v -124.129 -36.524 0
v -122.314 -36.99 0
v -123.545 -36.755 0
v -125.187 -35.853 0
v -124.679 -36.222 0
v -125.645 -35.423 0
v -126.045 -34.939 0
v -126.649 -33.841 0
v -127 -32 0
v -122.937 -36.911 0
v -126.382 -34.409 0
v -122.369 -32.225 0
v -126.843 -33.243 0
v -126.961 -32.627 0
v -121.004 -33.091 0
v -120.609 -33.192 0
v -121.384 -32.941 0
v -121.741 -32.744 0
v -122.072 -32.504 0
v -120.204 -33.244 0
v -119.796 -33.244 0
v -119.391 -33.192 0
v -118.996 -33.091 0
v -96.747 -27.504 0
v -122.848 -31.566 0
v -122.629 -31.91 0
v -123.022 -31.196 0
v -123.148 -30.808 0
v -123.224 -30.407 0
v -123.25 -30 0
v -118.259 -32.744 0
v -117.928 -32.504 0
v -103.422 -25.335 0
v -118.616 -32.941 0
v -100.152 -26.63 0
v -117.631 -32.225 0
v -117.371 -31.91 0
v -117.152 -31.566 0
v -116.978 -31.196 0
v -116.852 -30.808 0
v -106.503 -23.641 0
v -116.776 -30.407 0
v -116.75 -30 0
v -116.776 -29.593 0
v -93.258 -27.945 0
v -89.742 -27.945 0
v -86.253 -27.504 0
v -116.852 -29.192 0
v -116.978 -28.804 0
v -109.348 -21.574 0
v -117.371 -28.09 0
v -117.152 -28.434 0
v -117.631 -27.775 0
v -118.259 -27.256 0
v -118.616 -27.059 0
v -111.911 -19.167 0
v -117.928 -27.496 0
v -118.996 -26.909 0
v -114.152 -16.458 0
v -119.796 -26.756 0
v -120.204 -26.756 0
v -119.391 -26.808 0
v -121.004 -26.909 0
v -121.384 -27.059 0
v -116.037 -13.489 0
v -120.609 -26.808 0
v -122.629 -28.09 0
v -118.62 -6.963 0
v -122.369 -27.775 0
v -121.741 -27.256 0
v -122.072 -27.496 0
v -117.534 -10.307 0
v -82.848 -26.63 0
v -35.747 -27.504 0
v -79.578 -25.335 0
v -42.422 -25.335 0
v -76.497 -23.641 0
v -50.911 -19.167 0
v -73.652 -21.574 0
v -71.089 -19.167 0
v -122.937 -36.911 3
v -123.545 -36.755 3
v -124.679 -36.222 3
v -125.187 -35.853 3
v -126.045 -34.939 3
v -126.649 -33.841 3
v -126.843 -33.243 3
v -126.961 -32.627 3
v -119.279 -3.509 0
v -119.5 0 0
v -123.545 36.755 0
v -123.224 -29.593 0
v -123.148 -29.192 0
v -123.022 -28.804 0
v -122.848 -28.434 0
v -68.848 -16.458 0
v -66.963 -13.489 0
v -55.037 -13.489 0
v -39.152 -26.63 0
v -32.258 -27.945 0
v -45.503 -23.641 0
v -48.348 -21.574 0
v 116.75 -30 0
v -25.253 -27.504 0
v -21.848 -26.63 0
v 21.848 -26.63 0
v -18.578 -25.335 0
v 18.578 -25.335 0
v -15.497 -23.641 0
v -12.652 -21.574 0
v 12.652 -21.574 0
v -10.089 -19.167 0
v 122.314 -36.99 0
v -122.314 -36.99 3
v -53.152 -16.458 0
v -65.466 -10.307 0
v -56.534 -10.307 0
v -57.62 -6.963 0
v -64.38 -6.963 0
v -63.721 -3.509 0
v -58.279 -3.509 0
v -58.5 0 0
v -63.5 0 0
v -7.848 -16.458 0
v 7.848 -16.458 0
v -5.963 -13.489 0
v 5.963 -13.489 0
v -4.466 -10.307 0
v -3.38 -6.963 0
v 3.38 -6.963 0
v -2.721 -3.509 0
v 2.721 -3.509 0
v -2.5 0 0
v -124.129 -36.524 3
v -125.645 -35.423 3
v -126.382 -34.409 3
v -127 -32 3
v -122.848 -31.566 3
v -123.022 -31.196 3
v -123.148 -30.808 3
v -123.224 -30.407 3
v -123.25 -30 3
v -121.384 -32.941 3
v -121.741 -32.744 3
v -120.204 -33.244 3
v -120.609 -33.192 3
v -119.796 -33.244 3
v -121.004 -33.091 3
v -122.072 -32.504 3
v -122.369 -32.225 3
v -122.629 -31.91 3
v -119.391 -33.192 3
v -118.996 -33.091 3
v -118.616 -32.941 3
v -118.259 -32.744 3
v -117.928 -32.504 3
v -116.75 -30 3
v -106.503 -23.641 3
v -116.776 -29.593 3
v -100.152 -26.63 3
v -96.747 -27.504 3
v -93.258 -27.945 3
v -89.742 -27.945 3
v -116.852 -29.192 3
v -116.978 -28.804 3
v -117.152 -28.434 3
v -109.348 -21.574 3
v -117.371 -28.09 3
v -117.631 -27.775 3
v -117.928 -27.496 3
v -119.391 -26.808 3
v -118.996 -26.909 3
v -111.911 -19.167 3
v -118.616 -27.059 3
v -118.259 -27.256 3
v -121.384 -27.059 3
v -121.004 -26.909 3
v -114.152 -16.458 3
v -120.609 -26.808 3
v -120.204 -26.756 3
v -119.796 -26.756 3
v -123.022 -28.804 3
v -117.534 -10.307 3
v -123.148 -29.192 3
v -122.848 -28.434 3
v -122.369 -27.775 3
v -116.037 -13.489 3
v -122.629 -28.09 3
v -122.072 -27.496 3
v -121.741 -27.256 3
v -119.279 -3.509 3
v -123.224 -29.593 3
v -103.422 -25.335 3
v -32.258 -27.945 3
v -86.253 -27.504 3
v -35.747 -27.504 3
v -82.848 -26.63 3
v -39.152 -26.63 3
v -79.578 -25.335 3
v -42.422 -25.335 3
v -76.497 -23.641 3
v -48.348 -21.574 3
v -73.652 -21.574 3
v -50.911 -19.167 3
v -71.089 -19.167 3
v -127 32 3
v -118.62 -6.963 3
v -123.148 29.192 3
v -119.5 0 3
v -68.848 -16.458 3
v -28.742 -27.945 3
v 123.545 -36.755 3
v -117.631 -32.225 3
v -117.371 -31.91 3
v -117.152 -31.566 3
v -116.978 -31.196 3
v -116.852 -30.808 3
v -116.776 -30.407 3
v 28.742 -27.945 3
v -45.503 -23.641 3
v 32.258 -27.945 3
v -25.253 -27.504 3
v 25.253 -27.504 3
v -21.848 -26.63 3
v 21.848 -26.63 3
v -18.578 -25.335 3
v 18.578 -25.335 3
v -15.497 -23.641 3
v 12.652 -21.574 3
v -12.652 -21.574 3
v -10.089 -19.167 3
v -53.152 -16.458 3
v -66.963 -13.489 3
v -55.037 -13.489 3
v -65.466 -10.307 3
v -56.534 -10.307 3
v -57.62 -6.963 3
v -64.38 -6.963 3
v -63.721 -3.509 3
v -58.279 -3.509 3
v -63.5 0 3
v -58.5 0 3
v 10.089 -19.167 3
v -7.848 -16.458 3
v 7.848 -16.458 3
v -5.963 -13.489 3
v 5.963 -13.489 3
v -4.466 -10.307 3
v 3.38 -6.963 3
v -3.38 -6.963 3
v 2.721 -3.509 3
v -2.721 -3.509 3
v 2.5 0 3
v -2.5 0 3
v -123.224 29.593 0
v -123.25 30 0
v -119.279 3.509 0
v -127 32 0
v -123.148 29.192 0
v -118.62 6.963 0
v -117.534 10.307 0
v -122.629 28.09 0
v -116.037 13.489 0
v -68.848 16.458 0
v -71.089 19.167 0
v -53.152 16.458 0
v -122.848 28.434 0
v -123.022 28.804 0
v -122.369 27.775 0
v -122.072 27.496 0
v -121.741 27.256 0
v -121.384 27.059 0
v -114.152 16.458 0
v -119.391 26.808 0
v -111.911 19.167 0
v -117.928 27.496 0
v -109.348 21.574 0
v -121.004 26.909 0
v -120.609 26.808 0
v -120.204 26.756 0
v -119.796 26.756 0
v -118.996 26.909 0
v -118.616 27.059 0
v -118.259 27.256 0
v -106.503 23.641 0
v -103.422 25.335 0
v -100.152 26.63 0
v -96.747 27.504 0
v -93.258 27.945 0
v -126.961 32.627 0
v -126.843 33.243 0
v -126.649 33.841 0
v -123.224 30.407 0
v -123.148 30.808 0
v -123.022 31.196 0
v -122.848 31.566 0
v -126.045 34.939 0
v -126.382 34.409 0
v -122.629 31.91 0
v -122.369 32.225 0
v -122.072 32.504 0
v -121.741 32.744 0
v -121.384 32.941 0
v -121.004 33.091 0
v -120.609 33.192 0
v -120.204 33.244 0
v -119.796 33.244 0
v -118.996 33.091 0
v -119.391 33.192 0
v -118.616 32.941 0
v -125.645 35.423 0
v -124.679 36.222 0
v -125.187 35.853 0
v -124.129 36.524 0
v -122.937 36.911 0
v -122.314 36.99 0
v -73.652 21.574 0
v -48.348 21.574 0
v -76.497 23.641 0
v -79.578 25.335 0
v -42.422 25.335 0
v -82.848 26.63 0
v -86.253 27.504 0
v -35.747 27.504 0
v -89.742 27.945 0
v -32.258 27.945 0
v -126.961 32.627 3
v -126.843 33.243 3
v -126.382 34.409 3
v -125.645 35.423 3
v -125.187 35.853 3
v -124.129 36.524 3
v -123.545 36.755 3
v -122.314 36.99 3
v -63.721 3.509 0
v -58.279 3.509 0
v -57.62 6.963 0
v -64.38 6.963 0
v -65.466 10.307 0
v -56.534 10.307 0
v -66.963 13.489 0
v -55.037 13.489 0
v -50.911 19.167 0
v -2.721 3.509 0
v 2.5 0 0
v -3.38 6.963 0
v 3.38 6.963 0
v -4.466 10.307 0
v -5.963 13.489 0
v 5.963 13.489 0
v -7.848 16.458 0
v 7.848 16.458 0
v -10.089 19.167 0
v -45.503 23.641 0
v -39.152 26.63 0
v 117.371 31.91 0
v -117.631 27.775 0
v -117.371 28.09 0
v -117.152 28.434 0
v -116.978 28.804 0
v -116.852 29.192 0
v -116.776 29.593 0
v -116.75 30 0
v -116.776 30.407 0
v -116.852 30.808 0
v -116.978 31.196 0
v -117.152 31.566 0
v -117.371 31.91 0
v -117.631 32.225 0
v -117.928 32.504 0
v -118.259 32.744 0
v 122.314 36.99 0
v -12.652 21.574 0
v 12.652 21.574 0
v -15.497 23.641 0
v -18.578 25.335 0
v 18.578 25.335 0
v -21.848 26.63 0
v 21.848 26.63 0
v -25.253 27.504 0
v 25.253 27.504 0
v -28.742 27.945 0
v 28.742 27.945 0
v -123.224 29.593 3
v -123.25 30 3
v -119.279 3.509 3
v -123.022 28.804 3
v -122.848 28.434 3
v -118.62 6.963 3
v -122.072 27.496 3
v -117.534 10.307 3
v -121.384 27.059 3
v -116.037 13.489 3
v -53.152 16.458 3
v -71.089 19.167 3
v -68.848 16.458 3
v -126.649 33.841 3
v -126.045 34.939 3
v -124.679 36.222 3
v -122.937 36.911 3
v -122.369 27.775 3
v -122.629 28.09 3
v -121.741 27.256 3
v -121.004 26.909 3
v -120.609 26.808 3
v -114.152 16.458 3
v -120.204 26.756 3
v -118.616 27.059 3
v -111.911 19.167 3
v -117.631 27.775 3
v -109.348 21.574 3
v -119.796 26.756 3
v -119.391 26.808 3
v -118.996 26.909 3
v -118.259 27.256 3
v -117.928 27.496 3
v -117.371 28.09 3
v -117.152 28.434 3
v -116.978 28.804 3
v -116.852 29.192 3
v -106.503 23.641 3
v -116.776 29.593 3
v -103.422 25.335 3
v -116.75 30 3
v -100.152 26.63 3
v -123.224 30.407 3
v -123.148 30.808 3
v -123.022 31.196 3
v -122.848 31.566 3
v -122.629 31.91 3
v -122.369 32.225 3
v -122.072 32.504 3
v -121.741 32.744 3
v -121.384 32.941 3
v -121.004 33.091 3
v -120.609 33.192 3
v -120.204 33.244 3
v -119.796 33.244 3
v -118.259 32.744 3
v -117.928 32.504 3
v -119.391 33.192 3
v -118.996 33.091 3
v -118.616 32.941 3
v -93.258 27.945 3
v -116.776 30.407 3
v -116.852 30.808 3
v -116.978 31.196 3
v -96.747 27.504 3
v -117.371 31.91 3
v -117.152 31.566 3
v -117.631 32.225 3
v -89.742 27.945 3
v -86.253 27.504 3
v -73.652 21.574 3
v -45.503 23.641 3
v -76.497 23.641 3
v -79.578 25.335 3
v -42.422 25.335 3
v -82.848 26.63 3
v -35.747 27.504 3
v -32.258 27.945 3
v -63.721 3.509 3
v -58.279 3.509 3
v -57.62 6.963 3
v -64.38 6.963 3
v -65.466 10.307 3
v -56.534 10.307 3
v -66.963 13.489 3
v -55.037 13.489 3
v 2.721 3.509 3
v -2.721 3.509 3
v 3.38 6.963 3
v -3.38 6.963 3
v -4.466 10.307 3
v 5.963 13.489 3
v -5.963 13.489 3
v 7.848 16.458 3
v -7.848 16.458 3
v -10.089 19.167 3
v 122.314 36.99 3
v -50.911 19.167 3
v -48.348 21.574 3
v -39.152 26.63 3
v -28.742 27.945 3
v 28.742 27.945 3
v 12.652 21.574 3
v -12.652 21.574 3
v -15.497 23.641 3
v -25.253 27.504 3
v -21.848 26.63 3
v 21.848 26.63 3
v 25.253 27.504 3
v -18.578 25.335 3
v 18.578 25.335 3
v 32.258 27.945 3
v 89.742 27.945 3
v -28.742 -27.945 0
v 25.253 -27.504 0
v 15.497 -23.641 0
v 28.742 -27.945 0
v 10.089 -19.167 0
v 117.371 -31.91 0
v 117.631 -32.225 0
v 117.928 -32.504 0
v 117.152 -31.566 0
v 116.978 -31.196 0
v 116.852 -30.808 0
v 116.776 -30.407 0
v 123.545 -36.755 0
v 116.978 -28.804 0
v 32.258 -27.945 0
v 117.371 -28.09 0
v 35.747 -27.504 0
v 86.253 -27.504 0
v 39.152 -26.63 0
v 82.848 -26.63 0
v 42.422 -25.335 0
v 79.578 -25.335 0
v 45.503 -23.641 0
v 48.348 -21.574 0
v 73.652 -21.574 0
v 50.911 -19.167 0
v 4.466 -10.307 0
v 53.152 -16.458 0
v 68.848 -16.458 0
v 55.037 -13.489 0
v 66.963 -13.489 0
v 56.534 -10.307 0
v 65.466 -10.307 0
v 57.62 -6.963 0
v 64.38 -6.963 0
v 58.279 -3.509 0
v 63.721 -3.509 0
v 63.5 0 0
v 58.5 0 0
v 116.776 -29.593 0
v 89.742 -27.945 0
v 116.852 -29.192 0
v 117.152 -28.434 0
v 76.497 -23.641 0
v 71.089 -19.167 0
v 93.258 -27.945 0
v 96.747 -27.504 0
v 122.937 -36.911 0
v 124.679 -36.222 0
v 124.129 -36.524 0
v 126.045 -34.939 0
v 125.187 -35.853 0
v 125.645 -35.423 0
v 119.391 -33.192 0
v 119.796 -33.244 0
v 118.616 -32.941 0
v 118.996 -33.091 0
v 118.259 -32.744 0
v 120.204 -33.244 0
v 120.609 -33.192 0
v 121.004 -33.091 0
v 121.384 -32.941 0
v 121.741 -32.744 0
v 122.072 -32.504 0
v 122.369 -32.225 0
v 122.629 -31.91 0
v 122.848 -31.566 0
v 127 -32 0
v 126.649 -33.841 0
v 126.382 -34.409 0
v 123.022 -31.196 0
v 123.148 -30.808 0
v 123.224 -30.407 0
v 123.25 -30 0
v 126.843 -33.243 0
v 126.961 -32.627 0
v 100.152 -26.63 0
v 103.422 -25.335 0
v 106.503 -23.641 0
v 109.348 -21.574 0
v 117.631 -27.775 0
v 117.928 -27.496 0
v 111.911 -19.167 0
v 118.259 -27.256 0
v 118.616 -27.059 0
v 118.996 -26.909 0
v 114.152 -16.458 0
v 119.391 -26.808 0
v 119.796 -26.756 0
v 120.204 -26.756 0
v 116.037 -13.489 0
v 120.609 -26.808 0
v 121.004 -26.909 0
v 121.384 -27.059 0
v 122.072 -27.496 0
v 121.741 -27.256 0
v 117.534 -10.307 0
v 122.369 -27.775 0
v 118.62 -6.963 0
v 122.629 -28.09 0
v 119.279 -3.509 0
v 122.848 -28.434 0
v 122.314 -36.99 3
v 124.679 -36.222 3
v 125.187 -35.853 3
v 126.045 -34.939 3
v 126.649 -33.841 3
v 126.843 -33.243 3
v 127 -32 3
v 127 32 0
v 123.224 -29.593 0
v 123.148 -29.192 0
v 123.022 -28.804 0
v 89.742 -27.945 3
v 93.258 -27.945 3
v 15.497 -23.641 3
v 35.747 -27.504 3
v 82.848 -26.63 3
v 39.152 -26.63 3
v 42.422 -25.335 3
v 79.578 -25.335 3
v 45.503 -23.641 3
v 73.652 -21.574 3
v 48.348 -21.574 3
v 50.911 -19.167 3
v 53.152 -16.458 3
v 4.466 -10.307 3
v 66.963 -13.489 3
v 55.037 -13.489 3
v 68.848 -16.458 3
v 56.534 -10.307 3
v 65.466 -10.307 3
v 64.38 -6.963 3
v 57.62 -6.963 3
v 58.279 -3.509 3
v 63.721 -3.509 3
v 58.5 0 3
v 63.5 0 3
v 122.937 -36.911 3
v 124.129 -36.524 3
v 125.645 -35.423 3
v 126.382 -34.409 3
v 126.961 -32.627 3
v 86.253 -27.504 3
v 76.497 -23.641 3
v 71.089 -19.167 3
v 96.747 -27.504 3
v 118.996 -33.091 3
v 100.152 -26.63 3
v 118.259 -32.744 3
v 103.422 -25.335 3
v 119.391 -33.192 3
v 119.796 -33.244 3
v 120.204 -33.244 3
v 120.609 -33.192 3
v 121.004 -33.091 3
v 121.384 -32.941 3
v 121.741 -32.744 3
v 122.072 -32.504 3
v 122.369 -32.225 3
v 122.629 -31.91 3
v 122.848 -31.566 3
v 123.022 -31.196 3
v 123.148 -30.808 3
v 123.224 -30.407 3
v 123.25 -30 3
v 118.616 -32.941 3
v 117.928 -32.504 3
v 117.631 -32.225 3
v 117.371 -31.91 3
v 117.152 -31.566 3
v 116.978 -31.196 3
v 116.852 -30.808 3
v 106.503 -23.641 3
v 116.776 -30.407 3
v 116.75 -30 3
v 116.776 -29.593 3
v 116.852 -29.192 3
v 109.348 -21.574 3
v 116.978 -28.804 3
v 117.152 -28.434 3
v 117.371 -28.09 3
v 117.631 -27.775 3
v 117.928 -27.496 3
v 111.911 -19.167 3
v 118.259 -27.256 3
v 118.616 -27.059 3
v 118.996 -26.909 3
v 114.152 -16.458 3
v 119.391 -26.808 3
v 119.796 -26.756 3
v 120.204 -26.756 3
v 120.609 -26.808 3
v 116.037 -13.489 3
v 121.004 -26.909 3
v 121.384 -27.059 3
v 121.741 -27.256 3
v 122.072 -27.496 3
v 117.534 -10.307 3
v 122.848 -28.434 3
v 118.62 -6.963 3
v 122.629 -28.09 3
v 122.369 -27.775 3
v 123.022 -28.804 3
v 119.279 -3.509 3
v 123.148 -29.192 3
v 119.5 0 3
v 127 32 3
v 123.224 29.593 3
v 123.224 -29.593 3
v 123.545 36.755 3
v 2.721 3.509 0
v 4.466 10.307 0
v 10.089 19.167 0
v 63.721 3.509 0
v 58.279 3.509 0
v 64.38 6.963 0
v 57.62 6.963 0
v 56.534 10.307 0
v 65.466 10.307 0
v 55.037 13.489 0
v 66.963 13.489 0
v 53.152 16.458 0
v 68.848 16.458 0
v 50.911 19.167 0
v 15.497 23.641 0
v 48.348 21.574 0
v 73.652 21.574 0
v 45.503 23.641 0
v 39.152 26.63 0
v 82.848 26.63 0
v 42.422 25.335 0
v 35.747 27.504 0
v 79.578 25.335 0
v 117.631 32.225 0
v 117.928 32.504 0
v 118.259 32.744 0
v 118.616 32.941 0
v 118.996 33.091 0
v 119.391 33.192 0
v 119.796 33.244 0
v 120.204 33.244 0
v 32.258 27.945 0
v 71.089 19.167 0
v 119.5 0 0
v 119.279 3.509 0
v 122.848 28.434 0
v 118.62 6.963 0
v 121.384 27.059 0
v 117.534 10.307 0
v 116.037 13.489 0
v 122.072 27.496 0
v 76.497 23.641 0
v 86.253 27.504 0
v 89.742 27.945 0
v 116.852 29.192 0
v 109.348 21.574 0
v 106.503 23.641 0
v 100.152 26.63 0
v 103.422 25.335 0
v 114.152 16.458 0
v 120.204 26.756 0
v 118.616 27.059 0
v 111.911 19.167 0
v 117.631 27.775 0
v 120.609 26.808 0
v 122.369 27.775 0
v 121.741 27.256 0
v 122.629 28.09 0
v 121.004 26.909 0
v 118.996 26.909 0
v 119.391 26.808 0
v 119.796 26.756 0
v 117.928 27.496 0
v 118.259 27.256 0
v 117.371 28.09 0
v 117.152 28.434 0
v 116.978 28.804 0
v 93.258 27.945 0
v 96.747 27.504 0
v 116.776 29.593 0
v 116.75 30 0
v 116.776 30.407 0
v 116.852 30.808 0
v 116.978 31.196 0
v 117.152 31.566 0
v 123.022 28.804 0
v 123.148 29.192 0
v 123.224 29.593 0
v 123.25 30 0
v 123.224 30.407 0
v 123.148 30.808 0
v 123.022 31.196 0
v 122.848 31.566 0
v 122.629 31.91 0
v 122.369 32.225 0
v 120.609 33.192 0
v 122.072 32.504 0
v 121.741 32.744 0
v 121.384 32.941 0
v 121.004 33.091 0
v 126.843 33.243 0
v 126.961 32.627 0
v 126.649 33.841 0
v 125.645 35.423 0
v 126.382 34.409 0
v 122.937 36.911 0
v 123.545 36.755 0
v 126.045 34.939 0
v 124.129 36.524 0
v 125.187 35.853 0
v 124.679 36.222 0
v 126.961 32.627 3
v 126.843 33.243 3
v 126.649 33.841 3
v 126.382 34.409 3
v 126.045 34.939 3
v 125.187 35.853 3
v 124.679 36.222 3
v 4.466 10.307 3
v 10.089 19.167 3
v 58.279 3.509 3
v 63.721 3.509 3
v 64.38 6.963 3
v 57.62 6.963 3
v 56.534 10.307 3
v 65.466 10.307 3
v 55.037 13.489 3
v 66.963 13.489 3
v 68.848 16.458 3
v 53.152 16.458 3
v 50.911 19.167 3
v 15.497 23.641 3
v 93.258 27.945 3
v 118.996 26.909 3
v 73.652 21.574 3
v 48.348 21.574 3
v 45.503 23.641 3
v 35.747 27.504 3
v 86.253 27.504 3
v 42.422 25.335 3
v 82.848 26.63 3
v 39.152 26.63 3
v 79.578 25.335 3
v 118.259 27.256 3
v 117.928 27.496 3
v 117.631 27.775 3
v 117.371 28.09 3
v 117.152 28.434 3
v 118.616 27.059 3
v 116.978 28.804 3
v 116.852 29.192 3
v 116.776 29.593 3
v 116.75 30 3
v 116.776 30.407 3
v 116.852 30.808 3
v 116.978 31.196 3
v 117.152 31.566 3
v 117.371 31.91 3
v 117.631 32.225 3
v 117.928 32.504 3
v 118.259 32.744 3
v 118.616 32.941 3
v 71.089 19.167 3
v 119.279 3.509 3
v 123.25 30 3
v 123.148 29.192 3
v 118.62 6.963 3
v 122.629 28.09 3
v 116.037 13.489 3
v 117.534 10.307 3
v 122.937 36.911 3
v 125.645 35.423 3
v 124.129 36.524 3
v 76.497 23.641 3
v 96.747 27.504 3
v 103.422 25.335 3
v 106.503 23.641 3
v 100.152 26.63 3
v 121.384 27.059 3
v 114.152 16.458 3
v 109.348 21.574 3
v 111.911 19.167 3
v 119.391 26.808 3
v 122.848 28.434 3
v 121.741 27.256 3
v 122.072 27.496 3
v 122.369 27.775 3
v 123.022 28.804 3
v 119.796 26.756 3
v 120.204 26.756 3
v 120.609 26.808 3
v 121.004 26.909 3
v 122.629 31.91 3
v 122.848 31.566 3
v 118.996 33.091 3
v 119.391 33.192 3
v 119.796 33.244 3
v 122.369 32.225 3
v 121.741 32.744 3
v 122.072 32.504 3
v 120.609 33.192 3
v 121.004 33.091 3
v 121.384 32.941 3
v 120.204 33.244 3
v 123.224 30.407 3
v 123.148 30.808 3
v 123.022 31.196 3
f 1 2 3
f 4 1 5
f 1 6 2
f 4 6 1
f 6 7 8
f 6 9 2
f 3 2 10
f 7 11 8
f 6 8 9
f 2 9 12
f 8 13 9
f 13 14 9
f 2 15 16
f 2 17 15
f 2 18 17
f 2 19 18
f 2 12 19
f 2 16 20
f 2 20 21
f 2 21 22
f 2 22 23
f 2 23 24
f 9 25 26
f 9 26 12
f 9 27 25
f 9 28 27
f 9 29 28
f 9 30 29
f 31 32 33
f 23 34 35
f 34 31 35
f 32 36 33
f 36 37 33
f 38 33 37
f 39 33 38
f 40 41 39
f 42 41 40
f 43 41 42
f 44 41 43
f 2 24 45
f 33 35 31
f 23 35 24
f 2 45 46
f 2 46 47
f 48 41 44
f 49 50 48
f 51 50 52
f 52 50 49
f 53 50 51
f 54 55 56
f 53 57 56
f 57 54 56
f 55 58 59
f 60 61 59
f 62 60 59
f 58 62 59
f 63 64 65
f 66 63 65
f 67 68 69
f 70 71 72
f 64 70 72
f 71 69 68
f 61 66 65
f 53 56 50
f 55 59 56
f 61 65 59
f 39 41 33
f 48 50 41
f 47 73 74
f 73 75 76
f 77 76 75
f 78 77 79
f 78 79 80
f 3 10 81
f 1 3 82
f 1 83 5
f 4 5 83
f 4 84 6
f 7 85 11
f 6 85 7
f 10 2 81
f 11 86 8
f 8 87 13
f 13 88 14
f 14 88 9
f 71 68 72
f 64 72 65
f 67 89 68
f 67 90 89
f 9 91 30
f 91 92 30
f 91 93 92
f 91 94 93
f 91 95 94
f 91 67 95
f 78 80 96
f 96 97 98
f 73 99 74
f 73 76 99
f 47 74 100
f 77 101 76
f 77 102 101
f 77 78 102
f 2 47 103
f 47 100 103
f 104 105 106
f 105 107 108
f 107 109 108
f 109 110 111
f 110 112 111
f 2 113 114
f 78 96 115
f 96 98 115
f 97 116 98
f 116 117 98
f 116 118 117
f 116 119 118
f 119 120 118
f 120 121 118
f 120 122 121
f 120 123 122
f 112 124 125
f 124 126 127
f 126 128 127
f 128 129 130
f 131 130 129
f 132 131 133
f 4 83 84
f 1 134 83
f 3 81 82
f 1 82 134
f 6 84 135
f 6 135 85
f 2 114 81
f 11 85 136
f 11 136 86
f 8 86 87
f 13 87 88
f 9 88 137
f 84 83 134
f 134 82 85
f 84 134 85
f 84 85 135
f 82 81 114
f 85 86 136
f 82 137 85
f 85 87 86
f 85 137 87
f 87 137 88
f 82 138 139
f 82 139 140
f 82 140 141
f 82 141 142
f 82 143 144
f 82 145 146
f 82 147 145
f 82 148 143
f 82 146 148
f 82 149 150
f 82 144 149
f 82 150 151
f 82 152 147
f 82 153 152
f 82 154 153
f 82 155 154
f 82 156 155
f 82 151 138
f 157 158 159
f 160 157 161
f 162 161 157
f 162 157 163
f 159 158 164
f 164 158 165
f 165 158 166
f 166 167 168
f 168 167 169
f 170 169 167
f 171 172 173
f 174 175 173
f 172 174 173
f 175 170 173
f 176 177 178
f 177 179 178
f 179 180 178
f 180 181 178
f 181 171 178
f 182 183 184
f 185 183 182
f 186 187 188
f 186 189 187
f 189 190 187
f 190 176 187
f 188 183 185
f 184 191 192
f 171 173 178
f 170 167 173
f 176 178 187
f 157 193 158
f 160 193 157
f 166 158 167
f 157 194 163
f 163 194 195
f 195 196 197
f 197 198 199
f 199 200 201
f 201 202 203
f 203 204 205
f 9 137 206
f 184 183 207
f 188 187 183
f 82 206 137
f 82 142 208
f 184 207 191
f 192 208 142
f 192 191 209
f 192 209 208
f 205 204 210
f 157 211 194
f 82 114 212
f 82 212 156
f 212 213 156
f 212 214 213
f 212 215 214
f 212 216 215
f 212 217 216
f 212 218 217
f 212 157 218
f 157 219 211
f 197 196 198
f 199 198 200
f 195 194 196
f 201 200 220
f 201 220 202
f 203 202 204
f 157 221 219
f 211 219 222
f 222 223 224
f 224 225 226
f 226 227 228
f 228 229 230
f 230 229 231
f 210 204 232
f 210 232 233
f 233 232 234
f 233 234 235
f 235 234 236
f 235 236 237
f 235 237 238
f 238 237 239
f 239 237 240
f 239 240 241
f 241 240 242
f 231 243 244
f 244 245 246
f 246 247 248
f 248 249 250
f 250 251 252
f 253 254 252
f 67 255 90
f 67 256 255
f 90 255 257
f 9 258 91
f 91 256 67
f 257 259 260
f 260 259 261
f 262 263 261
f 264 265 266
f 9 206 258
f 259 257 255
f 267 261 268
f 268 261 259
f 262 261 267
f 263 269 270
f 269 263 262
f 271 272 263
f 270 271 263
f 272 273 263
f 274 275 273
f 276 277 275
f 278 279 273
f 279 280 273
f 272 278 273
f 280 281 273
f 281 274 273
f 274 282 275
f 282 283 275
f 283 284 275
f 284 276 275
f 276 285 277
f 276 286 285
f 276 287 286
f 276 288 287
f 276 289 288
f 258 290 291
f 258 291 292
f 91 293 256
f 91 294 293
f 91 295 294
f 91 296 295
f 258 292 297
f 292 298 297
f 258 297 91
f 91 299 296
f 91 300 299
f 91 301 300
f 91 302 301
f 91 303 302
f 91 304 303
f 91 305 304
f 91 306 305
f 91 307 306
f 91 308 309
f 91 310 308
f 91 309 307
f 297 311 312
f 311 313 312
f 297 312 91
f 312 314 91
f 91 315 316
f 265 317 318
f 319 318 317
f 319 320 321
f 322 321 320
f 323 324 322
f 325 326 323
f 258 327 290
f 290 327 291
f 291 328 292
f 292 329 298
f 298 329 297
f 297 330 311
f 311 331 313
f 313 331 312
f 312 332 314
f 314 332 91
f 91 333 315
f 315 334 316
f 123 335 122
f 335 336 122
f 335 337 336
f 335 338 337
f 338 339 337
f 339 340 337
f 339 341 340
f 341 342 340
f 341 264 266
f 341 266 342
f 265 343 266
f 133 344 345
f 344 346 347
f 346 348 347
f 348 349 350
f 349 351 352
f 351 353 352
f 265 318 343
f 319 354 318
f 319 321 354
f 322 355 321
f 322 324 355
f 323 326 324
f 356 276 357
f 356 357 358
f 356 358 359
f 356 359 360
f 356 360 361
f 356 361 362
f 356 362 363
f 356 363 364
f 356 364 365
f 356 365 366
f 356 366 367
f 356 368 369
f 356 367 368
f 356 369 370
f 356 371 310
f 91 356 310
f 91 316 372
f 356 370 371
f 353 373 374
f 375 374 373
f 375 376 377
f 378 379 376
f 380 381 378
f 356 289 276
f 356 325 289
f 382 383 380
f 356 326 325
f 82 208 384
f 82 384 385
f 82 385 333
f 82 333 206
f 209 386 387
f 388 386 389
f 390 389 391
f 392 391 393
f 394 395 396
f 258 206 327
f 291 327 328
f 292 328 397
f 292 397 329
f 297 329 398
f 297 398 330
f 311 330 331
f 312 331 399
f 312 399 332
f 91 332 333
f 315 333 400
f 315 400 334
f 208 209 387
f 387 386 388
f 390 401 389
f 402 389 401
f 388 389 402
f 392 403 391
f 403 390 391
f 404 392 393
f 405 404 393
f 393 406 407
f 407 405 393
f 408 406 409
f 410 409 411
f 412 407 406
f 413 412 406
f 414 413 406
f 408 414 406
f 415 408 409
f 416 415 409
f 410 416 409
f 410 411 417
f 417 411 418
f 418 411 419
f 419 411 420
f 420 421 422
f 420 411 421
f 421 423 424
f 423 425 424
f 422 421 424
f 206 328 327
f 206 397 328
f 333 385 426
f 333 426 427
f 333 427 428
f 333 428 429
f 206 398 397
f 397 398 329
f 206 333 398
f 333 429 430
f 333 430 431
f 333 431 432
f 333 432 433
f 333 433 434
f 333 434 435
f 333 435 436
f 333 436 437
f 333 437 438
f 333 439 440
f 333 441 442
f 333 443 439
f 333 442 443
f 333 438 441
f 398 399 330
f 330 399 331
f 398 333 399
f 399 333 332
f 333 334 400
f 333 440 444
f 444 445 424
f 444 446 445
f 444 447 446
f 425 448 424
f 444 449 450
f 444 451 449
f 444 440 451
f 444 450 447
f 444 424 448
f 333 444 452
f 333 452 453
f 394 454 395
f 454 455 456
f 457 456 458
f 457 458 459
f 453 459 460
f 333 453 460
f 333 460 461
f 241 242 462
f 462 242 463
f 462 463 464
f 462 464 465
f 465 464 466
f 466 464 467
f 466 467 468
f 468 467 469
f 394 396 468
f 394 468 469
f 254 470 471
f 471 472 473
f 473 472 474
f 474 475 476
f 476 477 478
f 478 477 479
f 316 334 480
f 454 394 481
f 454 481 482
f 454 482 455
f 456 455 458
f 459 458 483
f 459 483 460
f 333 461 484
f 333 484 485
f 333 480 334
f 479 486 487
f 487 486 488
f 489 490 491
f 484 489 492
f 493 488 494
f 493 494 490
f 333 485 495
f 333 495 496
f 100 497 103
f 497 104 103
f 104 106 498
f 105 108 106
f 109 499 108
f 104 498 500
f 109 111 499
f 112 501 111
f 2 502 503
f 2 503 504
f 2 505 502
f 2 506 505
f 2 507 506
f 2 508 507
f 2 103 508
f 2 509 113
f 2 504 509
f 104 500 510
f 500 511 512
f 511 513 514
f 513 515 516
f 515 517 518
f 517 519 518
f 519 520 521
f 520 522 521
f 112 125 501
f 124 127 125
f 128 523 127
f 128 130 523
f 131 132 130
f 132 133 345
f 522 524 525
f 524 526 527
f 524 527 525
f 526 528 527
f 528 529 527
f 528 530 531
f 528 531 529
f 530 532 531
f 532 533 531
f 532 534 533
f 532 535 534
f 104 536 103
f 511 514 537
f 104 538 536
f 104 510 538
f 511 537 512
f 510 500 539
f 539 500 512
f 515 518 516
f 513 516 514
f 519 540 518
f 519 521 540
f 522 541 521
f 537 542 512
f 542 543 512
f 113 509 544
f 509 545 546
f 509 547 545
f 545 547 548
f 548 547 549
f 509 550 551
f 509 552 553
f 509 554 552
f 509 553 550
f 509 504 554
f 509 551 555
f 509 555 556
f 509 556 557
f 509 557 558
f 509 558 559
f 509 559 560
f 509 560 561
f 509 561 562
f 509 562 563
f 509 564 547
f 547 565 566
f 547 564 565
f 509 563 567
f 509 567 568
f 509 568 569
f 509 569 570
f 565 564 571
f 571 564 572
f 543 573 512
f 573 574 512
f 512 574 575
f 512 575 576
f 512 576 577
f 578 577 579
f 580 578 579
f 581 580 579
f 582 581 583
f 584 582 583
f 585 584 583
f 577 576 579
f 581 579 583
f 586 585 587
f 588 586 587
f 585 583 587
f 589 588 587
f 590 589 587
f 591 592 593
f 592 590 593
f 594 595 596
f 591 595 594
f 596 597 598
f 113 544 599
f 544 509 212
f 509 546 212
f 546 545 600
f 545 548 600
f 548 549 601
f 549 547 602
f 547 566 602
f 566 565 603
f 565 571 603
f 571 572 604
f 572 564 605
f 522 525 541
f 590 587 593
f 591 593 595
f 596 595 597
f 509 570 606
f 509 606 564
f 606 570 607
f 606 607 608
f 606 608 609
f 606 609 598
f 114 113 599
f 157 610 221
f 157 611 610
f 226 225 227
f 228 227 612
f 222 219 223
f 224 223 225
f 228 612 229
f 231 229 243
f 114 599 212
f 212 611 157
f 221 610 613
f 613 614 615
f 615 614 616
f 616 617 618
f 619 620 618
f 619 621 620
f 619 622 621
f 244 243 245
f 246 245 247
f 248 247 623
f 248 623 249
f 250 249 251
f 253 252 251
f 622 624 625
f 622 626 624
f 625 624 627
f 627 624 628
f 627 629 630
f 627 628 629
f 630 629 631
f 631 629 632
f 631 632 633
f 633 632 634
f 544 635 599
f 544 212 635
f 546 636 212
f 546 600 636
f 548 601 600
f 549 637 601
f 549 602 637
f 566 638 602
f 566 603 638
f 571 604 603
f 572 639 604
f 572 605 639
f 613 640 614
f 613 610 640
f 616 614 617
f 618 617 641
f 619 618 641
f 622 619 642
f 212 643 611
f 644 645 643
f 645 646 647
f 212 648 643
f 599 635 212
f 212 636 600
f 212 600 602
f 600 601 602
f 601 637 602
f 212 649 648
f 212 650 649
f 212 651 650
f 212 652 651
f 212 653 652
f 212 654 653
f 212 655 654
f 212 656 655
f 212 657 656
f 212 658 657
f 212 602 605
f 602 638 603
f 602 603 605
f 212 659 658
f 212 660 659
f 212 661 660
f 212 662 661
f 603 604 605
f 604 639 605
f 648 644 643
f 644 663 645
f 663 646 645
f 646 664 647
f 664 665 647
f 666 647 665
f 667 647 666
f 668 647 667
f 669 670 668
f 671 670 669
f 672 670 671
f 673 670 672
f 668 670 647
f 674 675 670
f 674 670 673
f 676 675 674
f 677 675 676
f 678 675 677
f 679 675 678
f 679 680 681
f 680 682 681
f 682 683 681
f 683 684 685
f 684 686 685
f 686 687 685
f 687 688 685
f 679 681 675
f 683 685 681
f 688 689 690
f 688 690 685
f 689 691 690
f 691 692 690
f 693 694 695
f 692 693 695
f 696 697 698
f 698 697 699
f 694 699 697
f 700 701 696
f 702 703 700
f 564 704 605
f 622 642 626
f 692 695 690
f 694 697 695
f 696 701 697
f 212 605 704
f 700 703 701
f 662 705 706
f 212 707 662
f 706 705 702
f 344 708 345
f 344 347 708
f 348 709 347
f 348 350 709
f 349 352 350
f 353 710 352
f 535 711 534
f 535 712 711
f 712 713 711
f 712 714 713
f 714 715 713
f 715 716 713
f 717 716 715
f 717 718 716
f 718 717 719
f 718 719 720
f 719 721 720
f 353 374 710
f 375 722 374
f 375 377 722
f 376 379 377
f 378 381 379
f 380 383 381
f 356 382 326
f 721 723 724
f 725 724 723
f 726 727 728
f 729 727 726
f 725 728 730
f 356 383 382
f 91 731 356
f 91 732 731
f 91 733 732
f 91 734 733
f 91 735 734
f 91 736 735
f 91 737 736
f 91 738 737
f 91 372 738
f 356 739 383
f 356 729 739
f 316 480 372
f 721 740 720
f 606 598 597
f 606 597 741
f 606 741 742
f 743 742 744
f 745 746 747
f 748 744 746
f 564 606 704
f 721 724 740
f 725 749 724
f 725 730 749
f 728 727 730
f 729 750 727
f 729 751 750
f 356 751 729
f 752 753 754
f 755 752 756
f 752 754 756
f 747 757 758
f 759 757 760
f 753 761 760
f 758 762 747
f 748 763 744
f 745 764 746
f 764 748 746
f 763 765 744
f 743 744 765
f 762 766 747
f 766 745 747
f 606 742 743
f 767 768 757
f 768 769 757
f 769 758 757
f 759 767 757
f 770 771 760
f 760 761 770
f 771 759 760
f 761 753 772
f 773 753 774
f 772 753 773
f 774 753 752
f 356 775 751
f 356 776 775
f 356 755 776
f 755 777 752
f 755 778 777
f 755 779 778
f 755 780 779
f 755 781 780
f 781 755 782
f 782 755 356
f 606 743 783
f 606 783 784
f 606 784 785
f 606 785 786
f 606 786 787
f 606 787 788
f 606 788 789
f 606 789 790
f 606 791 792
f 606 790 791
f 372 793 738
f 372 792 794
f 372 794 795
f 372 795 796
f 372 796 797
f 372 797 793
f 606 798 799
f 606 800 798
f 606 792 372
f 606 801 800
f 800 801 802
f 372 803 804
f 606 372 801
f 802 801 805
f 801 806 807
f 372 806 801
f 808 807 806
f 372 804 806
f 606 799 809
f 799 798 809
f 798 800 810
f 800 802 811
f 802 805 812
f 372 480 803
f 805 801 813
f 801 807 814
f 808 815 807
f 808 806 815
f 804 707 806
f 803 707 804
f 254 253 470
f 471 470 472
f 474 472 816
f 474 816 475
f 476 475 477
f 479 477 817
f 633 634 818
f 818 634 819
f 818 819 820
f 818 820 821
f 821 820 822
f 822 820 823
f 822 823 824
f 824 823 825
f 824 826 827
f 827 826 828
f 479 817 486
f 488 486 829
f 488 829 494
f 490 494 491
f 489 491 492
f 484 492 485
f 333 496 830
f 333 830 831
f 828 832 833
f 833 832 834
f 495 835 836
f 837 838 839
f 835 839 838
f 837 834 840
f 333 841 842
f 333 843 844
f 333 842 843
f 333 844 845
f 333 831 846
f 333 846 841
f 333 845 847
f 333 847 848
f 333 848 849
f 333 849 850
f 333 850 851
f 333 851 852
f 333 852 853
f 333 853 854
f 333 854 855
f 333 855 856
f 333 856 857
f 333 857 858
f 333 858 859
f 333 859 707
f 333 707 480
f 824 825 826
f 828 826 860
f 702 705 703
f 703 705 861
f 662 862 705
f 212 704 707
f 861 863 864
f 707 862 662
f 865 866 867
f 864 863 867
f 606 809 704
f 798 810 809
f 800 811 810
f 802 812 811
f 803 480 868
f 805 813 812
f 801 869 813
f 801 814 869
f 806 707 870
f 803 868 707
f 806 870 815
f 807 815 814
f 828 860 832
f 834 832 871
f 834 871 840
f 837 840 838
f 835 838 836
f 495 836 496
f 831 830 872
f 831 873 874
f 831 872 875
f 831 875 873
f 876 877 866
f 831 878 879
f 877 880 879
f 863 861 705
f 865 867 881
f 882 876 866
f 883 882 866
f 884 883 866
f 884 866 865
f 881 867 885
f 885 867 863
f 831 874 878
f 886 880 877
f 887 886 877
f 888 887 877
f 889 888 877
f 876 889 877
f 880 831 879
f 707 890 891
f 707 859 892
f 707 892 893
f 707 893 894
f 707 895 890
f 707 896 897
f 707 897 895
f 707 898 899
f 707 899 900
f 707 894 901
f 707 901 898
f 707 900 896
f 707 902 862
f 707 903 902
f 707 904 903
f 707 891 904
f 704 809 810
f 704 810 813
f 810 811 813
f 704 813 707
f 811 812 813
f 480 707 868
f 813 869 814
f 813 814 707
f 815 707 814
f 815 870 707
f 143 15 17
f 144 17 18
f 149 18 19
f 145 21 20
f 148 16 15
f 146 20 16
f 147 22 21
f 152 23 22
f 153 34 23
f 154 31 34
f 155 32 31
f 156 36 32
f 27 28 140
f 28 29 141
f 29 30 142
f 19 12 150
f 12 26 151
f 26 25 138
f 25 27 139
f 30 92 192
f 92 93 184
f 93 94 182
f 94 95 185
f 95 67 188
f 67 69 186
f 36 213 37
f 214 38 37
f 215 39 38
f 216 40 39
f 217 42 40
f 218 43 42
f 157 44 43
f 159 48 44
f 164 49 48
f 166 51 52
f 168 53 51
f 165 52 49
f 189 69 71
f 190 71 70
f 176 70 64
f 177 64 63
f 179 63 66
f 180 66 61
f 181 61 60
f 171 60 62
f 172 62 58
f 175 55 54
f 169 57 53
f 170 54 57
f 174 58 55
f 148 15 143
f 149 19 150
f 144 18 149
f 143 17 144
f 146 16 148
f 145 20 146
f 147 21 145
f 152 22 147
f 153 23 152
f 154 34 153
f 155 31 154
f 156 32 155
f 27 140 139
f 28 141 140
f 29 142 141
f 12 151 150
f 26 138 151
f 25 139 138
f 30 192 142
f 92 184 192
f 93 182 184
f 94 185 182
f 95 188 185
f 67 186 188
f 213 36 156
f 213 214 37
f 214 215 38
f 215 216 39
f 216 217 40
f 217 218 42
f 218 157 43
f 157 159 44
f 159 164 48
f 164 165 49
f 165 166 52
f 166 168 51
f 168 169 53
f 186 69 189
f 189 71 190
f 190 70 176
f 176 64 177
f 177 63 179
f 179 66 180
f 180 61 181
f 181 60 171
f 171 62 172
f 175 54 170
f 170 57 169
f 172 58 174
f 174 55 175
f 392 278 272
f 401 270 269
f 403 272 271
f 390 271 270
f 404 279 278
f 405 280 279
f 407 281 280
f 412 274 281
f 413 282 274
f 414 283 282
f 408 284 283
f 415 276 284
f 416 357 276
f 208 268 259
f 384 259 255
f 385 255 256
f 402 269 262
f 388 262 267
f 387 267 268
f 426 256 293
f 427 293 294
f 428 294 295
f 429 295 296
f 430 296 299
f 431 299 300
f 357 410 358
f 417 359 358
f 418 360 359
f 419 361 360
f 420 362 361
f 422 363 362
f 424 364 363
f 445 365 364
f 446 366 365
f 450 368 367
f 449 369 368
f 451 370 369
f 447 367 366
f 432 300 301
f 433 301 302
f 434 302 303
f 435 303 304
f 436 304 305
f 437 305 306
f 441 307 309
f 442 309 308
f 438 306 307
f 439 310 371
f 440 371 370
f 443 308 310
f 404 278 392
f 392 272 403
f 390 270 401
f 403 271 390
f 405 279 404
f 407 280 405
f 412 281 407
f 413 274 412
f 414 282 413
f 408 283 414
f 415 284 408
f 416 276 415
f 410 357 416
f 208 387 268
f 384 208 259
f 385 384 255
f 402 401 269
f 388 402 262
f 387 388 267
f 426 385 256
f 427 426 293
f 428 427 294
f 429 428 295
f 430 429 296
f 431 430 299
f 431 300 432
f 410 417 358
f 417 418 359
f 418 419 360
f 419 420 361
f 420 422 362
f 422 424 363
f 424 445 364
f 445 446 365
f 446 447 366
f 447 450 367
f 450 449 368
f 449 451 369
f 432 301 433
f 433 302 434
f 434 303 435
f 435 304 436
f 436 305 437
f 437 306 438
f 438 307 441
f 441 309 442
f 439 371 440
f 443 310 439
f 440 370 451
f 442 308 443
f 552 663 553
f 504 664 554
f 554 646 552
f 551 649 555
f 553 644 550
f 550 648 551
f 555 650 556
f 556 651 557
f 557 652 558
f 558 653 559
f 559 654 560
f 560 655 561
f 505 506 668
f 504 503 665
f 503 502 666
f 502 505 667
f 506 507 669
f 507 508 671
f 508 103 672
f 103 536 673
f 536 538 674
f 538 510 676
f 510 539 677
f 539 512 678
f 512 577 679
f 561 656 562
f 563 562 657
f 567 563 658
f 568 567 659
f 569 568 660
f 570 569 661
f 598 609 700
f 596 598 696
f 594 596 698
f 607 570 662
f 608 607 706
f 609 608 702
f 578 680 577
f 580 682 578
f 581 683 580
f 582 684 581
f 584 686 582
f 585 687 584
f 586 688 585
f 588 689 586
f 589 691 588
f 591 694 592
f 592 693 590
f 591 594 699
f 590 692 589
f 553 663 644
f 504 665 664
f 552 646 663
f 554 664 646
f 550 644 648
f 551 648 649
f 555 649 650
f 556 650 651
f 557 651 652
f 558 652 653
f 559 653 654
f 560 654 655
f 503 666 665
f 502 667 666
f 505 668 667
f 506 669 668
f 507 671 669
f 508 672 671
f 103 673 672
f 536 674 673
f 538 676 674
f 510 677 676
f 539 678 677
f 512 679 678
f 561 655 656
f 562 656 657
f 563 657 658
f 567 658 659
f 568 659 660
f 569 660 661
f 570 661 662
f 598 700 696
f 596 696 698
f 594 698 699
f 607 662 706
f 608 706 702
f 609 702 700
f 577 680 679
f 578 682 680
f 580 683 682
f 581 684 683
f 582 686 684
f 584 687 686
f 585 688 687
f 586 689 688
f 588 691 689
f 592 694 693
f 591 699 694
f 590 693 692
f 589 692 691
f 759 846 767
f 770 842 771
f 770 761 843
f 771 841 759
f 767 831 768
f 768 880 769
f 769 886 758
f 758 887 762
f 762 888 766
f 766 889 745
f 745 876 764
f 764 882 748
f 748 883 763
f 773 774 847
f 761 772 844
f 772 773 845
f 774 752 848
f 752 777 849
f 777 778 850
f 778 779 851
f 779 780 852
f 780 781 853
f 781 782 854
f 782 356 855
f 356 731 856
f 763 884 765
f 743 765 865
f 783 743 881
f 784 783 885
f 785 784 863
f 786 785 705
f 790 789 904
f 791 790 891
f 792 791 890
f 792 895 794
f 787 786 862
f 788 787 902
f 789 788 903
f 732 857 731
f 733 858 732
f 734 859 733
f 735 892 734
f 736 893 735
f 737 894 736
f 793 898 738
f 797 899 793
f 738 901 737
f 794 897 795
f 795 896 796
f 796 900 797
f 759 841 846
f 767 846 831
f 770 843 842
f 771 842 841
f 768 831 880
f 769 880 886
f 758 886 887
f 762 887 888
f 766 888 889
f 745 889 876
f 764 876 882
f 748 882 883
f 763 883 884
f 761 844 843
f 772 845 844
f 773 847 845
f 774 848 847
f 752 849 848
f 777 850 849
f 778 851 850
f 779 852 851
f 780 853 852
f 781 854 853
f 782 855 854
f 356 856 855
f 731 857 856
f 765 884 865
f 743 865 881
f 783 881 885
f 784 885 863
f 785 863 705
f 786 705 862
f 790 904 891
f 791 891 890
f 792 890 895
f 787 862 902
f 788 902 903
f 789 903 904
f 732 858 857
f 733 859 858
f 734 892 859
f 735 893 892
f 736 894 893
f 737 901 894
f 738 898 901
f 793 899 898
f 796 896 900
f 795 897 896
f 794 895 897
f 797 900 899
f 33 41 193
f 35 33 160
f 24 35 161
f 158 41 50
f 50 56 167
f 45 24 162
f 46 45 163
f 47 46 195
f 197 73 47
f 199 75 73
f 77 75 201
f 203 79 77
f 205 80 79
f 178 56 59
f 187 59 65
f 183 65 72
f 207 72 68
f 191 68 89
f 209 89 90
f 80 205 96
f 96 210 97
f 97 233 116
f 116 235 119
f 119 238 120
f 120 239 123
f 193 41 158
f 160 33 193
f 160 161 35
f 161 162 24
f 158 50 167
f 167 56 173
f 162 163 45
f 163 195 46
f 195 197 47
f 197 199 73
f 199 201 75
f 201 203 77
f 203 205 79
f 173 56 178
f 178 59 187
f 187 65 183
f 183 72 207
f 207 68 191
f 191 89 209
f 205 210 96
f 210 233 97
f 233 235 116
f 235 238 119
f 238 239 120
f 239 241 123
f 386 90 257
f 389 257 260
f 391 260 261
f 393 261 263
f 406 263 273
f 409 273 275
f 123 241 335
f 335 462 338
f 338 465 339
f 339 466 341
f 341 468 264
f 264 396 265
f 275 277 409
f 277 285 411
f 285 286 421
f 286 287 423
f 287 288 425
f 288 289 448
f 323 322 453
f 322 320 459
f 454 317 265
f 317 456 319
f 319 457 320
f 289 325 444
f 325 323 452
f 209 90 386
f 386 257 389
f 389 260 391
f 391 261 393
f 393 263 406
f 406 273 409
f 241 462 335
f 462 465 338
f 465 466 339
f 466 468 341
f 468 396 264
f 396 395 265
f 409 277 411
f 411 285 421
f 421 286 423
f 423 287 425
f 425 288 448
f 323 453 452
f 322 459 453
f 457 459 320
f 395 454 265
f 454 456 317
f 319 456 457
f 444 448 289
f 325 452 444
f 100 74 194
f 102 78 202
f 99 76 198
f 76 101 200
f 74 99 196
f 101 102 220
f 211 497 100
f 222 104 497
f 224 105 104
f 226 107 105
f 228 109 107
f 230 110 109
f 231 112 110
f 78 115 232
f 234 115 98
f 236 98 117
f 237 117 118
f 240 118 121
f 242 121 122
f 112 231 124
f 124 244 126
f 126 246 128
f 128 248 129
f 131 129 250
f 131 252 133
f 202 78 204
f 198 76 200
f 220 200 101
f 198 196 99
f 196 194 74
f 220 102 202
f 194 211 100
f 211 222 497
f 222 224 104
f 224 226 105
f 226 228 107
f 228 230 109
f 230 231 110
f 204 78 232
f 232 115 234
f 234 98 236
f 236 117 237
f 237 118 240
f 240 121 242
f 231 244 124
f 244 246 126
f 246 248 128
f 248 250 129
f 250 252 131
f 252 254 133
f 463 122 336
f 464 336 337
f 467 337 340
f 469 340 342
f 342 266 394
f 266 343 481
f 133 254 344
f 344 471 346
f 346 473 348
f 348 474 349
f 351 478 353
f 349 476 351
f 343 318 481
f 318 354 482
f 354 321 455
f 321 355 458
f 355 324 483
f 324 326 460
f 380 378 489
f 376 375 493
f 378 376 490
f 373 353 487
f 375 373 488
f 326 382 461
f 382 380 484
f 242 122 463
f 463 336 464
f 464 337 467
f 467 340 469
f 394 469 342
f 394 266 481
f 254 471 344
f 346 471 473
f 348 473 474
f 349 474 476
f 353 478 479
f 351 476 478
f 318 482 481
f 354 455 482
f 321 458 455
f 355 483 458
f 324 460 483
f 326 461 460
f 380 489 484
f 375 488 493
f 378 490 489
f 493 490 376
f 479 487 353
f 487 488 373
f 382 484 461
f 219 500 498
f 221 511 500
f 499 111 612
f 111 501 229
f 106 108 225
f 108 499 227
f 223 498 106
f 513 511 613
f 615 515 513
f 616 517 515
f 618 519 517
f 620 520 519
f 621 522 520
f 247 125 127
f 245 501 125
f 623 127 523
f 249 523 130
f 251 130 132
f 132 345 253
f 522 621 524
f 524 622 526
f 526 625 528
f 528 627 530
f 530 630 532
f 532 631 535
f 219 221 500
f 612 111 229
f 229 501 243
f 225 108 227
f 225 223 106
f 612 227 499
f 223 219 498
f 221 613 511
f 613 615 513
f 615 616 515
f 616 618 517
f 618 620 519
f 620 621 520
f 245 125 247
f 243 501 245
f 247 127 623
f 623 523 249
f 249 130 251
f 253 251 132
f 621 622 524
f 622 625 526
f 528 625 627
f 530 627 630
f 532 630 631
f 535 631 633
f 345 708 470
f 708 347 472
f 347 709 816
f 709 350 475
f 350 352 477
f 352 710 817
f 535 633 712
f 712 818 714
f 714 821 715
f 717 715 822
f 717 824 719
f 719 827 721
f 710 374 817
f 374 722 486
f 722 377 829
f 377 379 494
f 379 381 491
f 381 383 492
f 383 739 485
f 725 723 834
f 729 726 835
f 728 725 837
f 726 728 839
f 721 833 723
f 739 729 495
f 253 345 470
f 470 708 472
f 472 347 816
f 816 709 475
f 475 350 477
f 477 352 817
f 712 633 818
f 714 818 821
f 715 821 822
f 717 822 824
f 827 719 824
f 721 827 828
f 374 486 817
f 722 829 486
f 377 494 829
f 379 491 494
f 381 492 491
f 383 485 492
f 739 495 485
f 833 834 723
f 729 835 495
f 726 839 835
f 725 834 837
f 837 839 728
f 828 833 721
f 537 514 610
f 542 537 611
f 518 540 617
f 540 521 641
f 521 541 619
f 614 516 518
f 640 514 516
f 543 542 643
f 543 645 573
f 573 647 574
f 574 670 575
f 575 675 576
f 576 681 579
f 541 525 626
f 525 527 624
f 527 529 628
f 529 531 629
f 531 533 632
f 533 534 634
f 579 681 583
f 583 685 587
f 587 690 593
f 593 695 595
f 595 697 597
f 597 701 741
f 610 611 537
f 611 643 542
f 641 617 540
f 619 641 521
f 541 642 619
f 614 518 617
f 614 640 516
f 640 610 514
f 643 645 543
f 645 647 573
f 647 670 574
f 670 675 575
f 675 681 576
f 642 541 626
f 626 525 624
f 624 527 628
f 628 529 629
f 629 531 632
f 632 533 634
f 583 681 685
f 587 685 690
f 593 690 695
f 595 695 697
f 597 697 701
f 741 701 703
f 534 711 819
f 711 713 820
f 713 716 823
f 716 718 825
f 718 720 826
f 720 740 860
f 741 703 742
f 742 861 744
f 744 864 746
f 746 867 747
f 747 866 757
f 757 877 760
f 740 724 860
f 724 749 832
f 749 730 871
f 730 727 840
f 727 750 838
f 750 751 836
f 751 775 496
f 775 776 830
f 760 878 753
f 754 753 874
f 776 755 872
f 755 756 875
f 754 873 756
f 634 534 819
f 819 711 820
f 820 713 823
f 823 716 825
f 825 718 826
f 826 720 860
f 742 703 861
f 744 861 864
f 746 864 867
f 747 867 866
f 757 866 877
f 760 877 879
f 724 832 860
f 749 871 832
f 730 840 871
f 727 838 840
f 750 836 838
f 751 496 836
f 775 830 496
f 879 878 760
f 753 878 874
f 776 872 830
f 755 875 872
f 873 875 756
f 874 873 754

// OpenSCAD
$fn = 50;

difference() {
	union() {
		hull() {
			translate(v = [-122.0, 32.0, 0]) {
				cylinder(h = 3, r = 5);
			}
			translate(v = [122.0, 32.0, 0]) {
				cylinder(h = 3, r = 5);
			}
			translate(v = [-122.0, -32.0, 0]) {
				cylinder(h = 3, r = 5);
			}
			translate(v = [122.0, -32.0, 0]) {
				cylinder(h = 3, r = 5);
			}
		}
	}
	union() {
		translate(v = [-120.0, -30.0, -100.0]) {
			cylinder(h = 200, r = 3.25);
		}
		translate(v = [-120.0, 30.0, -100.0]) {
			cylinder(h = 200, r = 3.25);
		}
		translate(v = [120.0, -30.0, -100.0]) {
			cylinder(h = 200, r = 3.25);
		}
		translate(v = [120.0, 30.0, -100.0]) {
			cylinder(h = 200, r = 3.25);
		}
		translate(v = [-120.0, -30.0, -100.0]) {
			cylinder(h = 200, r = 1.8);
		}
		translate(v = [-120.0, 30.0, -100.0]) {
			cylinder(h = 200, r = 1.8);
		}
		translate(v = [120.0, -30.0, -100.0]) {
			cylinder(h = 200, r = 1.8);
		}
		translate(v = [120.0, 30.0, -100.0]) {
			cylinder(h = 200, r = 1.8);
		}
		translate(v = [-91.5, 0, 0.0]) {
			cylinder(h = 3, r = 28.0);
		}
		translate(v = [-30.5, 0, 0.0]) {
			cylinder(h = 3, r = 28.0);
		}
		translate(v = [30.5, 0, 0.0]) {
			cylinder(h = 3, r = 28.0);
		}
		translate(v = [91.5, 0, 0.0]) {
			cylinder(h = 3, r = 28.0);
		}
	}
}
